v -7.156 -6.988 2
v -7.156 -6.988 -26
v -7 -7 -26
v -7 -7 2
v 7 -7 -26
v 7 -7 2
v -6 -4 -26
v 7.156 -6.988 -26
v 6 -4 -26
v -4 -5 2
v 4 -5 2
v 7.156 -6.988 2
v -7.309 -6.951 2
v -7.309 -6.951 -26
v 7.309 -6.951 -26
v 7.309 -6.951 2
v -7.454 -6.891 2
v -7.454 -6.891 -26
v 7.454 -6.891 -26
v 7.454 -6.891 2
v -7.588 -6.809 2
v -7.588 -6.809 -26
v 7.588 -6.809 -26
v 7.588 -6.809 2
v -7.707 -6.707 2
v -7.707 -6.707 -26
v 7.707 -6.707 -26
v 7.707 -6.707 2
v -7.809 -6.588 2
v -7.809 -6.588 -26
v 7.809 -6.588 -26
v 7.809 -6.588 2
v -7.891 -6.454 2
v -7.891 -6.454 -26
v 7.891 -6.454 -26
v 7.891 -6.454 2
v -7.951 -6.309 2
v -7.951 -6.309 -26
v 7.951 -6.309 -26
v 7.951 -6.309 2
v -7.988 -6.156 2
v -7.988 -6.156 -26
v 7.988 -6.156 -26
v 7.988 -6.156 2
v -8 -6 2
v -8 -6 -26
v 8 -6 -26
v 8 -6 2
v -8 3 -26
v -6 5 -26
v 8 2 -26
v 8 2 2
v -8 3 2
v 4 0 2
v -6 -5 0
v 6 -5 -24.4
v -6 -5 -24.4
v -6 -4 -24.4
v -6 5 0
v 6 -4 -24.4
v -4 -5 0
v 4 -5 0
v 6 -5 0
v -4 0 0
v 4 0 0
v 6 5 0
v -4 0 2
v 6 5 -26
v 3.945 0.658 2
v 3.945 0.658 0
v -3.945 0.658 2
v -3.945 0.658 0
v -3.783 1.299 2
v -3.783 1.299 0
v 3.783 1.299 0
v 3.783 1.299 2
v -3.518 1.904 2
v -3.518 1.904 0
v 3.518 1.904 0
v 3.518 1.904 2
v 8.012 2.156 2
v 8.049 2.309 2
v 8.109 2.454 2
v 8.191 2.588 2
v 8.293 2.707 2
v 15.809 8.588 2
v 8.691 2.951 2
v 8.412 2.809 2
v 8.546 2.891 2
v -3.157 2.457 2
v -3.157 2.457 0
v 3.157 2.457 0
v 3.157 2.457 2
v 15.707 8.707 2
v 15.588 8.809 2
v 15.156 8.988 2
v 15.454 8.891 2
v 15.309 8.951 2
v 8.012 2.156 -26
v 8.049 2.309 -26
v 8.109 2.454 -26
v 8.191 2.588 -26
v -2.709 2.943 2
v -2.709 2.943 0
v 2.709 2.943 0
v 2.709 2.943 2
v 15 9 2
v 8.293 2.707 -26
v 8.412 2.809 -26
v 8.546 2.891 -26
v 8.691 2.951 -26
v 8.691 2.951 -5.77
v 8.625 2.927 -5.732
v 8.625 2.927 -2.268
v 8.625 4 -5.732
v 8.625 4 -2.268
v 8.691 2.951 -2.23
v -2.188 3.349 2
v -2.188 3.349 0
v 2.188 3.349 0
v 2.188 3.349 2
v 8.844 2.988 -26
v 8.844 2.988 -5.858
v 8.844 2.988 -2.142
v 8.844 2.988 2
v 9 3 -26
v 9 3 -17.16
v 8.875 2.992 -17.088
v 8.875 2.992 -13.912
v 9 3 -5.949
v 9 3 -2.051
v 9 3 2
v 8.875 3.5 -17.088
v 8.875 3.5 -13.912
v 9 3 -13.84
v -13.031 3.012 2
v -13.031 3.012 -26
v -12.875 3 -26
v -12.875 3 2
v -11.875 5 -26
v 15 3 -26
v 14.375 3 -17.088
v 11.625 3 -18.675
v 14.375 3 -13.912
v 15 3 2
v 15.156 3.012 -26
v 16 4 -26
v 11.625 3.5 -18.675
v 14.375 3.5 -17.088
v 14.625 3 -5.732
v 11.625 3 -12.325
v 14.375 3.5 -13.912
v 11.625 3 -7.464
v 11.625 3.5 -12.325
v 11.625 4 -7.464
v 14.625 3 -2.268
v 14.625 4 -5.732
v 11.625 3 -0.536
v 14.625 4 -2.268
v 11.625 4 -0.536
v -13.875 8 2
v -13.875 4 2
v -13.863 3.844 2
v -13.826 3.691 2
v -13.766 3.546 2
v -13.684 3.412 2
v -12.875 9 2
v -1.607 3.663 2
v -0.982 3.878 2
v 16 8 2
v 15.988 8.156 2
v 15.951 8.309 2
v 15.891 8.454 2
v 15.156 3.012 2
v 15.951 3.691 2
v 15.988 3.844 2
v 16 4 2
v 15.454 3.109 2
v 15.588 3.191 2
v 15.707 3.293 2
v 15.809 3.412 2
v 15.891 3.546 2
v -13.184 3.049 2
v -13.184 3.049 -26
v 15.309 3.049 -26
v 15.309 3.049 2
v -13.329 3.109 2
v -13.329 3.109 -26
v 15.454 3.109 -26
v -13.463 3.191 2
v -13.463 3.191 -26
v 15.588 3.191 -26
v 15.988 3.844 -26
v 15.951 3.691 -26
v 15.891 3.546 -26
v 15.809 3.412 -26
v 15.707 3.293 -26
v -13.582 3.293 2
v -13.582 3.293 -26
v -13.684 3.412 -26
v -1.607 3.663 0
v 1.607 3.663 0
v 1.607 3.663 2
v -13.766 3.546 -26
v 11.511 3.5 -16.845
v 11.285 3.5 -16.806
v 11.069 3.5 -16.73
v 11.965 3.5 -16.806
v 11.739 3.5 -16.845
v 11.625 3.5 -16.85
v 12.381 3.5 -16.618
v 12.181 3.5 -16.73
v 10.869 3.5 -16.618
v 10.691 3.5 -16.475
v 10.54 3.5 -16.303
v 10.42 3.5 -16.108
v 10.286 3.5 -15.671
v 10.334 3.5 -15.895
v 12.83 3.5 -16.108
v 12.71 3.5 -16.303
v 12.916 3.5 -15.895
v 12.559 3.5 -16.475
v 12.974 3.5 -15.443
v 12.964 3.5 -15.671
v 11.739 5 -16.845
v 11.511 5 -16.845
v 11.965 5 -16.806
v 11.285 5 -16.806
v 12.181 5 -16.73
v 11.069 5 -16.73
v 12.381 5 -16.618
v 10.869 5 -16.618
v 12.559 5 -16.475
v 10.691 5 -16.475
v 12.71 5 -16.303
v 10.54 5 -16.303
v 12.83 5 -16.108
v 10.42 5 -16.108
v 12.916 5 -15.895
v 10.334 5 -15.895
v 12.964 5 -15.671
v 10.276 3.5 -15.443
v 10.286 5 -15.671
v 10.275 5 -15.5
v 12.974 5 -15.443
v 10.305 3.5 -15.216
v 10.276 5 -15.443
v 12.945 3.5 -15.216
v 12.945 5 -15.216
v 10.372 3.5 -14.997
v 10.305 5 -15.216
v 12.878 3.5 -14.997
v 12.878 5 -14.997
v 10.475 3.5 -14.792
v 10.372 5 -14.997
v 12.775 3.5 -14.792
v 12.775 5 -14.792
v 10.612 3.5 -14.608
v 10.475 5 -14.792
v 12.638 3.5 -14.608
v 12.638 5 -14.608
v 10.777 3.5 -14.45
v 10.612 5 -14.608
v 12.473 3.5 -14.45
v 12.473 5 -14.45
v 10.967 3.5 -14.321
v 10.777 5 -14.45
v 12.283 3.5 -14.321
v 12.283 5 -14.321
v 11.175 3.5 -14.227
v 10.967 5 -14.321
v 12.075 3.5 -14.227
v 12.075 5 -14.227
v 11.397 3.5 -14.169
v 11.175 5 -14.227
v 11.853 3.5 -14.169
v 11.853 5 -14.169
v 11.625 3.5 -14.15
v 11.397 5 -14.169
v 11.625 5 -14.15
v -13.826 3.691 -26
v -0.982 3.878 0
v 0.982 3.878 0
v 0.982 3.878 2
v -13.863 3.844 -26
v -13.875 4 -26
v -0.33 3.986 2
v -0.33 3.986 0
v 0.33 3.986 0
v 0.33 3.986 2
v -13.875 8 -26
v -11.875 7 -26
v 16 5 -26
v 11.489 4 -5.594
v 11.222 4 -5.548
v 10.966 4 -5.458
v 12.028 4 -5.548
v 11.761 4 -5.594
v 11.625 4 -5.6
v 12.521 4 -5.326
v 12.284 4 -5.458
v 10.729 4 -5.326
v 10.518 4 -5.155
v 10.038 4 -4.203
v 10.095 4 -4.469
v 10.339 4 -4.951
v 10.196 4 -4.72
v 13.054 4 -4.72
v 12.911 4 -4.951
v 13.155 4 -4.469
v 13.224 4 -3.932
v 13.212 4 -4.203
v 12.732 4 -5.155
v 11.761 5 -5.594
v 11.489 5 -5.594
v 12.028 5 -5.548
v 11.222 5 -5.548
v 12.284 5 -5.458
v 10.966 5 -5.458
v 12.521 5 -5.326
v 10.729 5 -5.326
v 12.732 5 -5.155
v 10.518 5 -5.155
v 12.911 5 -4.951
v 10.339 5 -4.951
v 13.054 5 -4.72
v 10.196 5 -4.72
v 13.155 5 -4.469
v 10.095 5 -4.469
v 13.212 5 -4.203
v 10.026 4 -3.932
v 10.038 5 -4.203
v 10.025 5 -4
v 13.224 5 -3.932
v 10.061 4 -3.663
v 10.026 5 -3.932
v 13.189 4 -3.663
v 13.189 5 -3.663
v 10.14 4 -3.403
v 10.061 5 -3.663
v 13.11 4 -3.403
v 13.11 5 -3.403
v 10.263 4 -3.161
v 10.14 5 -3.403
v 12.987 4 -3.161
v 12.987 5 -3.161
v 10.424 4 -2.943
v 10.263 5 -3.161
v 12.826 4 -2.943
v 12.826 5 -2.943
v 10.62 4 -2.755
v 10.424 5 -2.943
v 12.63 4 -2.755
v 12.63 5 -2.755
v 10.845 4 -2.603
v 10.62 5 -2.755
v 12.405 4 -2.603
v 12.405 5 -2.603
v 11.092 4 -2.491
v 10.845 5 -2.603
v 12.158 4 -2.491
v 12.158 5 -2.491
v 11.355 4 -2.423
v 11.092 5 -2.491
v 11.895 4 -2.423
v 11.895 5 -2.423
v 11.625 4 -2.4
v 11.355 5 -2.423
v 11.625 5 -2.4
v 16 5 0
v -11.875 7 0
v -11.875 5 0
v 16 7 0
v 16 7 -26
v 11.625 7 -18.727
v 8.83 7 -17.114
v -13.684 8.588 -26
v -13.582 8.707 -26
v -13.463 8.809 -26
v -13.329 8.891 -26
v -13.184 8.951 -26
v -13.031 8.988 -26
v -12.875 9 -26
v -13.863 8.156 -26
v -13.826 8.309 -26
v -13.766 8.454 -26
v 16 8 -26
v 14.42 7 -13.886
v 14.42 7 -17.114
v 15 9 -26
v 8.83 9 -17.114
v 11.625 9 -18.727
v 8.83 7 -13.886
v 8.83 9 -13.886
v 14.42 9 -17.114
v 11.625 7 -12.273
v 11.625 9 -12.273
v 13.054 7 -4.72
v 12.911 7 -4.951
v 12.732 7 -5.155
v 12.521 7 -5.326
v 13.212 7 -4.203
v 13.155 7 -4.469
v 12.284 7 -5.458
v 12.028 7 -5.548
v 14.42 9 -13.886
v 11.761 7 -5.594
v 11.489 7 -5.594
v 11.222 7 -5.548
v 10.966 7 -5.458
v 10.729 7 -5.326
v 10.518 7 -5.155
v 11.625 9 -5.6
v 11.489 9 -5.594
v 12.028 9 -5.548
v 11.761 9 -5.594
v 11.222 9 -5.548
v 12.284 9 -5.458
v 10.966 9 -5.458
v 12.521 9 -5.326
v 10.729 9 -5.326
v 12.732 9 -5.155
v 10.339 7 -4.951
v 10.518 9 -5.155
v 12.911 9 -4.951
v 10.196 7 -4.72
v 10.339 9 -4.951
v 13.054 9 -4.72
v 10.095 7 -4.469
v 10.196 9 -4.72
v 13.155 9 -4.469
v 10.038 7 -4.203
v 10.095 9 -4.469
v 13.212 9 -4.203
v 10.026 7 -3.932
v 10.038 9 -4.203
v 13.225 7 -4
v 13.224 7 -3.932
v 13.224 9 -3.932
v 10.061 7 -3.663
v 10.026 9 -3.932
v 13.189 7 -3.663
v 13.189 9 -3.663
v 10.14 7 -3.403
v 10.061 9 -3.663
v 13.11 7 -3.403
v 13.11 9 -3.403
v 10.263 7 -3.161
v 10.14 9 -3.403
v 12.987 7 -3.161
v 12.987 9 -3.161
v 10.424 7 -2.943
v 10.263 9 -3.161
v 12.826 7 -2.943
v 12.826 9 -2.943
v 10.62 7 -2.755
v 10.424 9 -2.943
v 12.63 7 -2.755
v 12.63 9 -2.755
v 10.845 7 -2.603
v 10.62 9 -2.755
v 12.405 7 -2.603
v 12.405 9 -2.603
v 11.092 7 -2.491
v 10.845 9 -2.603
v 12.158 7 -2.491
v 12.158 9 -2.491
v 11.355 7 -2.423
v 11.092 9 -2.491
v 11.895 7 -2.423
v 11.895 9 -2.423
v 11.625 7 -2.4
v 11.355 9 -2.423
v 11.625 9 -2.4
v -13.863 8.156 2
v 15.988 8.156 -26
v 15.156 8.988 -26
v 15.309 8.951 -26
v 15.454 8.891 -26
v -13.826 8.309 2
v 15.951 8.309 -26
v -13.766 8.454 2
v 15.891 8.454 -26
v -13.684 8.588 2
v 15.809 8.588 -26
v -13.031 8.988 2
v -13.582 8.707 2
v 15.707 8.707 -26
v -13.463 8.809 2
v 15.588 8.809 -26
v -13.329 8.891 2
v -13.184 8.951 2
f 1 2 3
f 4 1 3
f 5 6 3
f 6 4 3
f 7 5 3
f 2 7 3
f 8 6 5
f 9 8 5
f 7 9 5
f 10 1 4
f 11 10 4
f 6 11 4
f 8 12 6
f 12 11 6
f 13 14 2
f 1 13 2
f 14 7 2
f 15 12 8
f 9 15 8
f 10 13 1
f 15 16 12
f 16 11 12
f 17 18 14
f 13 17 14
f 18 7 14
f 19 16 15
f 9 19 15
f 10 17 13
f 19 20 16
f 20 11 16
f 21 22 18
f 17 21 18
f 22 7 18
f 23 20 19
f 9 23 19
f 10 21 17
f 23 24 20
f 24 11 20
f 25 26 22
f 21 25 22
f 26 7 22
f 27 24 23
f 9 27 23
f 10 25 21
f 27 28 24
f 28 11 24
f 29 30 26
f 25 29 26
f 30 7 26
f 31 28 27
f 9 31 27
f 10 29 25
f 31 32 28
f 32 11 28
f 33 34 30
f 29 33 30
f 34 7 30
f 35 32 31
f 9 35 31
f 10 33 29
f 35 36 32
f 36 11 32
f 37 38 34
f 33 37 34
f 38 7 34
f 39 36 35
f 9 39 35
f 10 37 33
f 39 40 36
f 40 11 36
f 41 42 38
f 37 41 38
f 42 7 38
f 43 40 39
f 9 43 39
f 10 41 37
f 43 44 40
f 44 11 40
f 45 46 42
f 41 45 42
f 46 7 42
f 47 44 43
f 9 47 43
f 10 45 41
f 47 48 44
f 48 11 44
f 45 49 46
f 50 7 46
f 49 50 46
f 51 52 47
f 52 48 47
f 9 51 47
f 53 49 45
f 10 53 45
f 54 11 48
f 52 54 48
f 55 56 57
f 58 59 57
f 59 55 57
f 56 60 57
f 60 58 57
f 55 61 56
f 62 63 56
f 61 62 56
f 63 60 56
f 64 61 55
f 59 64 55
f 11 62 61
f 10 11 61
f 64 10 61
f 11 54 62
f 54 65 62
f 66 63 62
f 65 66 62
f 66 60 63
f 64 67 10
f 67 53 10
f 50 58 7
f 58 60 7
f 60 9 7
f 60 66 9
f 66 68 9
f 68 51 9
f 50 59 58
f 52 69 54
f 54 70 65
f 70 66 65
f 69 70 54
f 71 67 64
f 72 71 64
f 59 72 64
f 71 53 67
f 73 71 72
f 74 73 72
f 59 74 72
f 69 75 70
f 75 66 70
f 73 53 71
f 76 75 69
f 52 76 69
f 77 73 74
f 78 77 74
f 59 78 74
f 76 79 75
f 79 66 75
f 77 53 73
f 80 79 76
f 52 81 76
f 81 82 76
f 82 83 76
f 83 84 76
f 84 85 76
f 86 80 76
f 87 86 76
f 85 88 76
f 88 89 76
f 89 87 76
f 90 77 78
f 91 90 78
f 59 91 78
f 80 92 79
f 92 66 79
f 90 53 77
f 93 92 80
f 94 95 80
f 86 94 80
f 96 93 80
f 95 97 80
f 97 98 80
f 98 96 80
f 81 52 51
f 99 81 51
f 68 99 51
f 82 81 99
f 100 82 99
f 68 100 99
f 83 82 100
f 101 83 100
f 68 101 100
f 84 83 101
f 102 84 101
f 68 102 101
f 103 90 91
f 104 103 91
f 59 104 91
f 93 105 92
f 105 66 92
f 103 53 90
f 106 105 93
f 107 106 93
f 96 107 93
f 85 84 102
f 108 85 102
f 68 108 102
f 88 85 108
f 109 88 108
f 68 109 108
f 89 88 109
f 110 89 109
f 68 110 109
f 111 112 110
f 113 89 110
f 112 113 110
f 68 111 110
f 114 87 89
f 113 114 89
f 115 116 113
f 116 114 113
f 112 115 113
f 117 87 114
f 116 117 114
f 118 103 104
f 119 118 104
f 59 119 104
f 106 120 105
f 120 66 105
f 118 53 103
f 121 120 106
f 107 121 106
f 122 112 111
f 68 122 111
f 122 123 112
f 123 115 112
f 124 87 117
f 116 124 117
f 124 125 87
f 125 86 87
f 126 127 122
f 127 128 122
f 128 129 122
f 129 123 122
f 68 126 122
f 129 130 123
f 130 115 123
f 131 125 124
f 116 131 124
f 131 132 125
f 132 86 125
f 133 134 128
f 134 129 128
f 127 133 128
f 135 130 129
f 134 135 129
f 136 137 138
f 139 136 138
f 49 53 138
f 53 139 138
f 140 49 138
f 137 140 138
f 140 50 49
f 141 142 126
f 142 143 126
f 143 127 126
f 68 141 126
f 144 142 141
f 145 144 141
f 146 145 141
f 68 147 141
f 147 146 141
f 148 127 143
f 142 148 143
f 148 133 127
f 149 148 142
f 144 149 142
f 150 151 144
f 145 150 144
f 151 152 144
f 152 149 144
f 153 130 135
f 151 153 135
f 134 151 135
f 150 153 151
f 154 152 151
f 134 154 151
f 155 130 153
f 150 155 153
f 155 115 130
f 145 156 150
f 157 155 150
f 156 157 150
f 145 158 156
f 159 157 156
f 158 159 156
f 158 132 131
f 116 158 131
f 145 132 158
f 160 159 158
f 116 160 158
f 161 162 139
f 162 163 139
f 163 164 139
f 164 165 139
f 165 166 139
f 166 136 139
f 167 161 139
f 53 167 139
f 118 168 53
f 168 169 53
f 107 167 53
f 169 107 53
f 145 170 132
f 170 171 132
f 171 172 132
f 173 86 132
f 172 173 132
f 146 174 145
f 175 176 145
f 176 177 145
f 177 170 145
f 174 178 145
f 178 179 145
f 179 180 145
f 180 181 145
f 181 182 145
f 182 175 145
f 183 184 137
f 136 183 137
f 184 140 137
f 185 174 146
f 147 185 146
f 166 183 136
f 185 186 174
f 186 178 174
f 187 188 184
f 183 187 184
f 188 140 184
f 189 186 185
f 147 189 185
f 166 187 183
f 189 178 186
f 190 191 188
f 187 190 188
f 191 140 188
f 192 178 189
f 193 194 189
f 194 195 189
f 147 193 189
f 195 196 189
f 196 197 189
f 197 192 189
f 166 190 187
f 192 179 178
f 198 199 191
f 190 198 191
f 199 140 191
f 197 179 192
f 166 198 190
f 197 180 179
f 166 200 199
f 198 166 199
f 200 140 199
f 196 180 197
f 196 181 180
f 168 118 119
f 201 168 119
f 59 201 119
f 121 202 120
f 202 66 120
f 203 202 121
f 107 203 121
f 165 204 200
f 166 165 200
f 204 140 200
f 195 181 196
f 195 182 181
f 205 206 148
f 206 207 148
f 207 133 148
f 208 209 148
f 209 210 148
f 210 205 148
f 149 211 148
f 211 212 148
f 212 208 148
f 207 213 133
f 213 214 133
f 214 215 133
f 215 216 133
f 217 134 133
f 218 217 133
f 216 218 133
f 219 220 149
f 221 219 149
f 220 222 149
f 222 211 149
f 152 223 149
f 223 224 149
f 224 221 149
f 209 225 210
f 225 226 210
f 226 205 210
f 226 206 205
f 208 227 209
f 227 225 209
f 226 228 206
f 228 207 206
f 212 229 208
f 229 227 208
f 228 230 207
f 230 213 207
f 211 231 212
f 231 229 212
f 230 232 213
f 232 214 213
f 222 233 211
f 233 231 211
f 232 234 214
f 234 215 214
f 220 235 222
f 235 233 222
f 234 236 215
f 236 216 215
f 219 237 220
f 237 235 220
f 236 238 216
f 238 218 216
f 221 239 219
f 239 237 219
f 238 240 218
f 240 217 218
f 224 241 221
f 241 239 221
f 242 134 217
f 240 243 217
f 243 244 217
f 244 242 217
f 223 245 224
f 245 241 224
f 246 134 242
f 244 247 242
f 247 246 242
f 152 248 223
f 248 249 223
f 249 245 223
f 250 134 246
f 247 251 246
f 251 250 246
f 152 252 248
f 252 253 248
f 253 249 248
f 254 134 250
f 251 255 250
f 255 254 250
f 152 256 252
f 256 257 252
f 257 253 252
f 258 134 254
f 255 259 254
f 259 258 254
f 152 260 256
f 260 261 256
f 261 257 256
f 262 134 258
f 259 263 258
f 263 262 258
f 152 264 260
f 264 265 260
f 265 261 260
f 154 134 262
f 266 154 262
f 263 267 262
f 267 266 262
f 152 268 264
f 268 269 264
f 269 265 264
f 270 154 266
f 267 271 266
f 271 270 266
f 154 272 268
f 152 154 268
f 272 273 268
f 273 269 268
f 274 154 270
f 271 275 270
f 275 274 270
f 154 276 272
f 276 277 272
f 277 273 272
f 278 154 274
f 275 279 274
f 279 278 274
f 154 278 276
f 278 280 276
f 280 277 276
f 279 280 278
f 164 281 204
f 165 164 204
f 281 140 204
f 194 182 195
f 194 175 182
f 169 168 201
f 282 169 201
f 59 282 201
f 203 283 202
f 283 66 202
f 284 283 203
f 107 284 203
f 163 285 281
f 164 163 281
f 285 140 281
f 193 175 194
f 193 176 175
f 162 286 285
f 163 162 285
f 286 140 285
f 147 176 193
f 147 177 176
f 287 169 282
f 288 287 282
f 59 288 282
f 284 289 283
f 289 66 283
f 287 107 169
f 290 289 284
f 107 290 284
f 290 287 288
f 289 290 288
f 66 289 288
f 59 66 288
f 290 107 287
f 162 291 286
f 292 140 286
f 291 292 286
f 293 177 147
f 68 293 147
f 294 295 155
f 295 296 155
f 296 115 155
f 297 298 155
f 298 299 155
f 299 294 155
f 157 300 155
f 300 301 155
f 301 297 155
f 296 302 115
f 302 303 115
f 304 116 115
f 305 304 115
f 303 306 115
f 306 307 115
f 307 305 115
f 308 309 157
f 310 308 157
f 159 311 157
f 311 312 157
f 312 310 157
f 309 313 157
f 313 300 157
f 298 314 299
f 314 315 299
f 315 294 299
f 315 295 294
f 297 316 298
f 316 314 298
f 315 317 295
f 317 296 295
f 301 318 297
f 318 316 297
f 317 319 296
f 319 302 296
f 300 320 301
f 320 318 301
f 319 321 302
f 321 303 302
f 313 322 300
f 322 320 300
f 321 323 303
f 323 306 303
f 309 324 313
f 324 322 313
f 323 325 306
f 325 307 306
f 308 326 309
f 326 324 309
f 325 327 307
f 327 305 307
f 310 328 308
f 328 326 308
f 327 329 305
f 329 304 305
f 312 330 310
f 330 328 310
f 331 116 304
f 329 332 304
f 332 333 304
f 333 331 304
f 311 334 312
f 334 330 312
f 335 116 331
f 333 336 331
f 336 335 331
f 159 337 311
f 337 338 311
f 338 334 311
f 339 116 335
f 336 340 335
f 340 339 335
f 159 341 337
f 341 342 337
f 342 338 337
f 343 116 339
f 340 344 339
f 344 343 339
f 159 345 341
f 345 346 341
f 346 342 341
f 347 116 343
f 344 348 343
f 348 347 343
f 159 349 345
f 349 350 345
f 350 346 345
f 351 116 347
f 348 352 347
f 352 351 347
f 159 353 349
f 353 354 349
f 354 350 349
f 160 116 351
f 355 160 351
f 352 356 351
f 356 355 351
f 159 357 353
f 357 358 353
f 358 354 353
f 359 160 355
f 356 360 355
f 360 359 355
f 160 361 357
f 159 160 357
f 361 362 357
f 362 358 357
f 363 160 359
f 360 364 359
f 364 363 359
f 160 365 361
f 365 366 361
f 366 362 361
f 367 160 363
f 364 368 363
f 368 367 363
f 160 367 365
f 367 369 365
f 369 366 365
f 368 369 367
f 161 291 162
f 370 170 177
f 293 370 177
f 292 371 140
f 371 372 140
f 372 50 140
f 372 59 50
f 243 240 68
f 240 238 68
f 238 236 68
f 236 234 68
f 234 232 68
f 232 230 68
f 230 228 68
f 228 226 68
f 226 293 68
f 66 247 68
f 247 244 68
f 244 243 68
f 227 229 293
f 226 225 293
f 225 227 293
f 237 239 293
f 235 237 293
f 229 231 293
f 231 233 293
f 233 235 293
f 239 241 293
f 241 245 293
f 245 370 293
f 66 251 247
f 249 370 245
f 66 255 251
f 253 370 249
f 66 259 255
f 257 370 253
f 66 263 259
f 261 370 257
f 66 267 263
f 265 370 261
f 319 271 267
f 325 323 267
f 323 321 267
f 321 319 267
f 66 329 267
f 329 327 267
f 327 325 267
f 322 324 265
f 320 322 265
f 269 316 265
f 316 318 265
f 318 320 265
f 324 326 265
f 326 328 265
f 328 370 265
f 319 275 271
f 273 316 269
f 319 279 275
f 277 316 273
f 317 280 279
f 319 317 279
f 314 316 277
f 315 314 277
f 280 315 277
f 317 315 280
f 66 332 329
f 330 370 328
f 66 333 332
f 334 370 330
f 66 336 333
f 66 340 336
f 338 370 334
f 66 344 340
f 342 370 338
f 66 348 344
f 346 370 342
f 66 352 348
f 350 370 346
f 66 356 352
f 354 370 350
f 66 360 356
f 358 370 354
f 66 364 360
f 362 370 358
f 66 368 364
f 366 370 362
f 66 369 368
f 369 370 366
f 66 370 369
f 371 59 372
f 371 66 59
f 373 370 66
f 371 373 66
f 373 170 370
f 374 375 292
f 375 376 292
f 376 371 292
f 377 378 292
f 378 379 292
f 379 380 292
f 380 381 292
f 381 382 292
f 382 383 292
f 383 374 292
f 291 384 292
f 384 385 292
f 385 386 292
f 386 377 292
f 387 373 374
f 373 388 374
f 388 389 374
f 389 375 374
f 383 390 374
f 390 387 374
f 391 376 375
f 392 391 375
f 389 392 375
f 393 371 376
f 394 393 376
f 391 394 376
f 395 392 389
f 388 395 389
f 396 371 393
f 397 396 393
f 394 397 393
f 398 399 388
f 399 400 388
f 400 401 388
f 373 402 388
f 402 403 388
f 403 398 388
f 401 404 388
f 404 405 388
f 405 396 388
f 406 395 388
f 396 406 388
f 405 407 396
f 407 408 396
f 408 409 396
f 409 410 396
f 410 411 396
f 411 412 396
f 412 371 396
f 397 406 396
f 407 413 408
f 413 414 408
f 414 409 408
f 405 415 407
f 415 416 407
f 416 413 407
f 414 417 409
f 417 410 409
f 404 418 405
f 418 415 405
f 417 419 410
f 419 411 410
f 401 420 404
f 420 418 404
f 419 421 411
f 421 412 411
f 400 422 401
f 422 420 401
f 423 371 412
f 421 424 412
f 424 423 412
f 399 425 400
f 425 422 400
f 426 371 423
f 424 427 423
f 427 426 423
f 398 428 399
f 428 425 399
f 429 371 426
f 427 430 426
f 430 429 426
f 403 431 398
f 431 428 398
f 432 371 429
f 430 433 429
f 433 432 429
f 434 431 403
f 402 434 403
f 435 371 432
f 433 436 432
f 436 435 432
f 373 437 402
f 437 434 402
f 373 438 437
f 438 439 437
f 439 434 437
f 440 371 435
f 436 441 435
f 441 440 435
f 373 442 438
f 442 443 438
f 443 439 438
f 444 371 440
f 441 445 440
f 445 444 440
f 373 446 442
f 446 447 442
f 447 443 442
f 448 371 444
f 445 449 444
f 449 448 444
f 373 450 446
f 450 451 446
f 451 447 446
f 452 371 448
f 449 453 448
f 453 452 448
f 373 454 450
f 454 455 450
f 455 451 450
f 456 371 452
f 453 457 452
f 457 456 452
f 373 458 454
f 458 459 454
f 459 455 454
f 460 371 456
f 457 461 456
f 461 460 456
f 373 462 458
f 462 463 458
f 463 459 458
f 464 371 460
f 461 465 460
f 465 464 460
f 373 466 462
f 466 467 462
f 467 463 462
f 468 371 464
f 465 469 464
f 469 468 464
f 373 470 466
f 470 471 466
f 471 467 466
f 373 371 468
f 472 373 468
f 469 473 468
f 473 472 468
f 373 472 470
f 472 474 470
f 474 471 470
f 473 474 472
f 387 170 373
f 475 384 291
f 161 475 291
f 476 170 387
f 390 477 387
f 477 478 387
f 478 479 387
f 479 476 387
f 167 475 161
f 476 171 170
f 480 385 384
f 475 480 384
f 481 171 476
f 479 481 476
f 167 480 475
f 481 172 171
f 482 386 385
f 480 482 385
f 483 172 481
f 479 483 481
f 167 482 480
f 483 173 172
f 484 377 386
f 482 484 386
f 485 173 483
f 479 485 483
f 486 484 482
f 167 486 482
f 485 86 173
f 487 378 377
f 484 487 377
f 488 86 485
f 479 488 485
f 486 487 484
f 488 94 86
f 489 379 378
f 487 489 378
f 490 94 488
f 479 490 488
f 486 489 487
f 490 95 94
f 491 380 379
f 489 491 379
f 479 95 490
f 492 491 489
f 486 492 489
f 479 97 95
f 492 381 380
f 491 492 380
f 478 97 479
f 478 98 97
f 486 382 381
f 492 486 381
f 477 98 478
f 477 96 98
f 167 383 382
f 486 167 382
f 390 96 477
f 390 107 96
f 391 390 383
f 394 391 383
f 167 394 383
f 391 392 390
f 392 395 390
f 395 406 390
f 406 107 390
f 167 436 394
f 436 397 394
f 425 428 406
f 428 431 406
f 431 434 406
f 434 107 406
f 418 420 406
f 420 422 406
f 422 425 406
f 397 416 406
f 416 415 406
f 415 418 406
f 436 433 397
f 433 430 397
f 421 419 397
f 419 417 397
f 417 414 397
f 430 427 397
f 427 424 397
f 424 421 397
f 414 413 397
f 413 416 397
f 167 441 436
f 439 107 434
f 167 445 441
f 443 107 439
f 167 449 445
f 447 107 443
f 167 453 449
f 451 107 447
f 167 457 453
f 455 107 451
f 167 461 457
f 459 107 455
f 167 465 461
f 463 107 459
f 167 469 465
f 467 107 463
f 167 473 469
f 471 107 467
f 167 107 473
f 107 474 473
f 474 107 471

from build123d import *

# Parameters (mm, degrees)
EXTRUDE_1_DEPTH          = 2
EXTRUDE_2_DEPTH          = 26
SKETCH_3_W               = 12
SKETCH_3_H               = 1
EXTRUDE_3_DEPTH          = 1.6
CUT_EXTRUDE_1_DEPTH      = 2
CUT_EXTRUDE_2_DEPTH      = 11
CUT_EXTRUDE_2_DEPTH_BACK = 0.5
CUT_EXTRUDE_3_DEPTH      = 11
CUT_EXTRUDE_3_DEPTH_BACK = 1
SKETCH_7_R               = 1.35
SKETCH_7_R_2             = 1.6
CUT_EXTRUDE_4_DEPTH      = 1
CUT_EXTRUDE_4_DEPTH_BACK = 6


with BuildPart() as part:
    # 草图1 → 凸台-拉伸1 (new body)
    with BuildSketch(Plane.XY):
        with BuildLine():
            ThreePointArc((8, 2), (8.292893219, 2.707106781), (9, 3))
            Line((9, 3), (15, 3))
            ThreePointArc((15, 3), (15.707106781, 3.292893219), (16, 4))
            Line((16, 4), (16, 8))
            ThreePointArc((16, 8), (15.707106781, 8.707106781), (15, 9))
            Line((15, 9), (-12.875, 9))
            ThreePointArc((-12.875, 9), (-13.582106781, 8.707106781), (-13.875, 8))
            Line((-13.875, 8), (-13.875, 4))
            ThreePointArc((-13.875, 4), (-13.582106781, 3.292893219), (-12.875, 3))
            Line((-12.875, 3), (-8, 3))
            Line((-8, 3), (-8, -6))
            ThreePointArc((-8, -6), (-7.707106781, -6.707106781), (-7, -7))
            Line((-7, -7), (7, -7))
            ThreePointArc((7, -7), (7.707106781, -6.707106781), (8, -6))
            Line((8, -6), (8, 2))
        make_face()
        with BuildLine():
            Line((4, -5), (-4, -5))
            Line((-4, -5), (-4, 0))
            ThreePointArc((-4, 0), (0, 4), (4, 0))
            Line((4, 0), (4, -5))
        make_face(mode=Mode.SUBTRACT)
    extrude(amount=EXTRUDE_1_DEPTH)

    # 草图2 → 凸台-拉伸2 (add)
    with BuildSketch(Plane(origin=(0, 0, 0), x_dir=(-1, 0, 0), z_dir=(0, 0, -1))):
        with BuildLine():
            Line((6, -4), (6, -5))
            Line((6, -5), (5, -5))
            Line((5, -5), (-5, -5))
            Line((-5, -5), (-6, -5))
            Line((-6, -5), (-6, -4))
            Line((-6, -4), (-6, 4))
            Line((-6, 4), (-6, 5))
            Line((-6, 5), (-16, 5))
            Line((-16, 5), (-16, 4))
            ThreePointArc((-16, 4), (-15.707106781, 3.292893219), (-15, 3))
            Line((-15, 3), (-9, 3))
            ThreePointArc((-9, 3), (-8.292893219, 2.707106781), (-8, 2))
            Line((-8, 2), (-8, -6))
            ThreePointArc((-8, -6), (-7.707106781, -6.707106781), (-7, -7))
            Line((-7, -7), (7, -7))
            ThreePointArc((7, -7), (7.707106781, -6.707106781), (8, -6))
            Line((8, -6), (8, 3))
            Line((8, 3), (12.875, 3))
            ThreePointArc((12.875, 3), (13.582106781, 3.292893219), (13.875, 4))
            Line((13.875, 4), (13.875, 8))
            ThreePointArc((13.875, 8), (13.582106781, 8.707106781), (12.875, 9))
            Line((12.875, 9), (-15, 9))
            ThreePointArc((-15, 9), (-15.707106781, 8.707106781), (-16, 8))
            Line((-16, 8), (-16, 7))
            Line((-16, 7), (11.875, 7))
            Line((11.875, 7), (11.875, 5))
            Line((11.875, 5), (6, 5))
            Line((6, 5), (6, 4))
            Line((6, 4), (6, -4))
        make_face()
    extrude(amount=EXTRUDE_2_DEPTH)

    # 草图3 → 凸台-拉伸3 (add)
    with BuildSketch(Plane(origin=(0, 0, -26), x_dir=(-1, 0, 0), z_dir=(0, 0, -1))):
        with Locations((0, -4.5)):
            Rectangle(SKETCH_3_W, SKETCH_3_H)
    extrude(amount=-EXTRUDE_3_DEPTH)

    # 草图4 → 切除-拉伸1 (cut)
    with BuildSketch(Plane(origin=(0, 9, 0), x_dir=(1, 0, 0), z_dir=(0, 1, 0))):
        Polygon((11.625, 12.272649731), (14.41996732, 13.886324865), (14.41996732, 17.113675135), (11.625, 18.727350269), (8.83003268, 17.113675135), (8.83003268, 13.886324865), align=None)
    extrude(amount=-CUT_EXTRUDE_1_DEPTH, mode=Mode.SUBTRACT)

    # 草图5 → 切除-拉伸2 (cut, two sides)
    with BuildSketch(Plane.XZ.offset(-3)) as cut_extrude_2_sk:
        Polygon((11.625, -18.675426481), (14.375, -17.08771324), (14.375, -13.91228676), (11.625, -12.324573519), (8.875, -13.91228676), (8.875, -17.08771324), align=None)
    extrude(amount=CUT_EXTRUDE_2_DEPTH, mode=Mode.SUBTRACT)
    extrude(cut_extrude_2_sk.sketch, amount=-CUT_EXTRUDE_2_DEPTH_BACK, mode=Mode.SUBTRACT)

    # 草图6 → 切除-拉伸3 (cut, two sides)
    with BuildSketch(Plane.XZ.offset(-3)) as cut_extrude_3_sk:
        Polygon((8.625, -5.732050808), (11.625, -7.464101615), (14.625, -5.732050808), (14.625, -2.267949192), (11.625, -0.535898385), (8.625, -2.267949192), align=None)
    extrude(amount=CUT_EXTRUDE_3_DEPTH, mode=Mode.SUBTRACT)
    extrude(cut_extrude_3_sk.sketch, amount=-CUT_EXTRUDE_3_DEPTH_BACK, mode=Mode.SUBTRACT)

    # 草图7 → 切除-拉伸4 (cut, two sides)
    with BuildSketch(Plane.XZ.offset(-4)) as cut_extrude_4_sk:
        with Locations((11.625, -15.5)):
            Circle(SKETCH_7_R)
        with Locations((11.625, -4)):
            Circle(SKETCH_7_R_2)
    extrude(amount=CUT_EXTRUDE_4_DEPTH, mode=Mode.SUBTRACT)
    extrude(cut_extrude_4_sk.sketch, amount=-CUT_EXTRUDE_4_DEPTH_BACK, mode=Mode.SUBTRACT)


solid = part.part
